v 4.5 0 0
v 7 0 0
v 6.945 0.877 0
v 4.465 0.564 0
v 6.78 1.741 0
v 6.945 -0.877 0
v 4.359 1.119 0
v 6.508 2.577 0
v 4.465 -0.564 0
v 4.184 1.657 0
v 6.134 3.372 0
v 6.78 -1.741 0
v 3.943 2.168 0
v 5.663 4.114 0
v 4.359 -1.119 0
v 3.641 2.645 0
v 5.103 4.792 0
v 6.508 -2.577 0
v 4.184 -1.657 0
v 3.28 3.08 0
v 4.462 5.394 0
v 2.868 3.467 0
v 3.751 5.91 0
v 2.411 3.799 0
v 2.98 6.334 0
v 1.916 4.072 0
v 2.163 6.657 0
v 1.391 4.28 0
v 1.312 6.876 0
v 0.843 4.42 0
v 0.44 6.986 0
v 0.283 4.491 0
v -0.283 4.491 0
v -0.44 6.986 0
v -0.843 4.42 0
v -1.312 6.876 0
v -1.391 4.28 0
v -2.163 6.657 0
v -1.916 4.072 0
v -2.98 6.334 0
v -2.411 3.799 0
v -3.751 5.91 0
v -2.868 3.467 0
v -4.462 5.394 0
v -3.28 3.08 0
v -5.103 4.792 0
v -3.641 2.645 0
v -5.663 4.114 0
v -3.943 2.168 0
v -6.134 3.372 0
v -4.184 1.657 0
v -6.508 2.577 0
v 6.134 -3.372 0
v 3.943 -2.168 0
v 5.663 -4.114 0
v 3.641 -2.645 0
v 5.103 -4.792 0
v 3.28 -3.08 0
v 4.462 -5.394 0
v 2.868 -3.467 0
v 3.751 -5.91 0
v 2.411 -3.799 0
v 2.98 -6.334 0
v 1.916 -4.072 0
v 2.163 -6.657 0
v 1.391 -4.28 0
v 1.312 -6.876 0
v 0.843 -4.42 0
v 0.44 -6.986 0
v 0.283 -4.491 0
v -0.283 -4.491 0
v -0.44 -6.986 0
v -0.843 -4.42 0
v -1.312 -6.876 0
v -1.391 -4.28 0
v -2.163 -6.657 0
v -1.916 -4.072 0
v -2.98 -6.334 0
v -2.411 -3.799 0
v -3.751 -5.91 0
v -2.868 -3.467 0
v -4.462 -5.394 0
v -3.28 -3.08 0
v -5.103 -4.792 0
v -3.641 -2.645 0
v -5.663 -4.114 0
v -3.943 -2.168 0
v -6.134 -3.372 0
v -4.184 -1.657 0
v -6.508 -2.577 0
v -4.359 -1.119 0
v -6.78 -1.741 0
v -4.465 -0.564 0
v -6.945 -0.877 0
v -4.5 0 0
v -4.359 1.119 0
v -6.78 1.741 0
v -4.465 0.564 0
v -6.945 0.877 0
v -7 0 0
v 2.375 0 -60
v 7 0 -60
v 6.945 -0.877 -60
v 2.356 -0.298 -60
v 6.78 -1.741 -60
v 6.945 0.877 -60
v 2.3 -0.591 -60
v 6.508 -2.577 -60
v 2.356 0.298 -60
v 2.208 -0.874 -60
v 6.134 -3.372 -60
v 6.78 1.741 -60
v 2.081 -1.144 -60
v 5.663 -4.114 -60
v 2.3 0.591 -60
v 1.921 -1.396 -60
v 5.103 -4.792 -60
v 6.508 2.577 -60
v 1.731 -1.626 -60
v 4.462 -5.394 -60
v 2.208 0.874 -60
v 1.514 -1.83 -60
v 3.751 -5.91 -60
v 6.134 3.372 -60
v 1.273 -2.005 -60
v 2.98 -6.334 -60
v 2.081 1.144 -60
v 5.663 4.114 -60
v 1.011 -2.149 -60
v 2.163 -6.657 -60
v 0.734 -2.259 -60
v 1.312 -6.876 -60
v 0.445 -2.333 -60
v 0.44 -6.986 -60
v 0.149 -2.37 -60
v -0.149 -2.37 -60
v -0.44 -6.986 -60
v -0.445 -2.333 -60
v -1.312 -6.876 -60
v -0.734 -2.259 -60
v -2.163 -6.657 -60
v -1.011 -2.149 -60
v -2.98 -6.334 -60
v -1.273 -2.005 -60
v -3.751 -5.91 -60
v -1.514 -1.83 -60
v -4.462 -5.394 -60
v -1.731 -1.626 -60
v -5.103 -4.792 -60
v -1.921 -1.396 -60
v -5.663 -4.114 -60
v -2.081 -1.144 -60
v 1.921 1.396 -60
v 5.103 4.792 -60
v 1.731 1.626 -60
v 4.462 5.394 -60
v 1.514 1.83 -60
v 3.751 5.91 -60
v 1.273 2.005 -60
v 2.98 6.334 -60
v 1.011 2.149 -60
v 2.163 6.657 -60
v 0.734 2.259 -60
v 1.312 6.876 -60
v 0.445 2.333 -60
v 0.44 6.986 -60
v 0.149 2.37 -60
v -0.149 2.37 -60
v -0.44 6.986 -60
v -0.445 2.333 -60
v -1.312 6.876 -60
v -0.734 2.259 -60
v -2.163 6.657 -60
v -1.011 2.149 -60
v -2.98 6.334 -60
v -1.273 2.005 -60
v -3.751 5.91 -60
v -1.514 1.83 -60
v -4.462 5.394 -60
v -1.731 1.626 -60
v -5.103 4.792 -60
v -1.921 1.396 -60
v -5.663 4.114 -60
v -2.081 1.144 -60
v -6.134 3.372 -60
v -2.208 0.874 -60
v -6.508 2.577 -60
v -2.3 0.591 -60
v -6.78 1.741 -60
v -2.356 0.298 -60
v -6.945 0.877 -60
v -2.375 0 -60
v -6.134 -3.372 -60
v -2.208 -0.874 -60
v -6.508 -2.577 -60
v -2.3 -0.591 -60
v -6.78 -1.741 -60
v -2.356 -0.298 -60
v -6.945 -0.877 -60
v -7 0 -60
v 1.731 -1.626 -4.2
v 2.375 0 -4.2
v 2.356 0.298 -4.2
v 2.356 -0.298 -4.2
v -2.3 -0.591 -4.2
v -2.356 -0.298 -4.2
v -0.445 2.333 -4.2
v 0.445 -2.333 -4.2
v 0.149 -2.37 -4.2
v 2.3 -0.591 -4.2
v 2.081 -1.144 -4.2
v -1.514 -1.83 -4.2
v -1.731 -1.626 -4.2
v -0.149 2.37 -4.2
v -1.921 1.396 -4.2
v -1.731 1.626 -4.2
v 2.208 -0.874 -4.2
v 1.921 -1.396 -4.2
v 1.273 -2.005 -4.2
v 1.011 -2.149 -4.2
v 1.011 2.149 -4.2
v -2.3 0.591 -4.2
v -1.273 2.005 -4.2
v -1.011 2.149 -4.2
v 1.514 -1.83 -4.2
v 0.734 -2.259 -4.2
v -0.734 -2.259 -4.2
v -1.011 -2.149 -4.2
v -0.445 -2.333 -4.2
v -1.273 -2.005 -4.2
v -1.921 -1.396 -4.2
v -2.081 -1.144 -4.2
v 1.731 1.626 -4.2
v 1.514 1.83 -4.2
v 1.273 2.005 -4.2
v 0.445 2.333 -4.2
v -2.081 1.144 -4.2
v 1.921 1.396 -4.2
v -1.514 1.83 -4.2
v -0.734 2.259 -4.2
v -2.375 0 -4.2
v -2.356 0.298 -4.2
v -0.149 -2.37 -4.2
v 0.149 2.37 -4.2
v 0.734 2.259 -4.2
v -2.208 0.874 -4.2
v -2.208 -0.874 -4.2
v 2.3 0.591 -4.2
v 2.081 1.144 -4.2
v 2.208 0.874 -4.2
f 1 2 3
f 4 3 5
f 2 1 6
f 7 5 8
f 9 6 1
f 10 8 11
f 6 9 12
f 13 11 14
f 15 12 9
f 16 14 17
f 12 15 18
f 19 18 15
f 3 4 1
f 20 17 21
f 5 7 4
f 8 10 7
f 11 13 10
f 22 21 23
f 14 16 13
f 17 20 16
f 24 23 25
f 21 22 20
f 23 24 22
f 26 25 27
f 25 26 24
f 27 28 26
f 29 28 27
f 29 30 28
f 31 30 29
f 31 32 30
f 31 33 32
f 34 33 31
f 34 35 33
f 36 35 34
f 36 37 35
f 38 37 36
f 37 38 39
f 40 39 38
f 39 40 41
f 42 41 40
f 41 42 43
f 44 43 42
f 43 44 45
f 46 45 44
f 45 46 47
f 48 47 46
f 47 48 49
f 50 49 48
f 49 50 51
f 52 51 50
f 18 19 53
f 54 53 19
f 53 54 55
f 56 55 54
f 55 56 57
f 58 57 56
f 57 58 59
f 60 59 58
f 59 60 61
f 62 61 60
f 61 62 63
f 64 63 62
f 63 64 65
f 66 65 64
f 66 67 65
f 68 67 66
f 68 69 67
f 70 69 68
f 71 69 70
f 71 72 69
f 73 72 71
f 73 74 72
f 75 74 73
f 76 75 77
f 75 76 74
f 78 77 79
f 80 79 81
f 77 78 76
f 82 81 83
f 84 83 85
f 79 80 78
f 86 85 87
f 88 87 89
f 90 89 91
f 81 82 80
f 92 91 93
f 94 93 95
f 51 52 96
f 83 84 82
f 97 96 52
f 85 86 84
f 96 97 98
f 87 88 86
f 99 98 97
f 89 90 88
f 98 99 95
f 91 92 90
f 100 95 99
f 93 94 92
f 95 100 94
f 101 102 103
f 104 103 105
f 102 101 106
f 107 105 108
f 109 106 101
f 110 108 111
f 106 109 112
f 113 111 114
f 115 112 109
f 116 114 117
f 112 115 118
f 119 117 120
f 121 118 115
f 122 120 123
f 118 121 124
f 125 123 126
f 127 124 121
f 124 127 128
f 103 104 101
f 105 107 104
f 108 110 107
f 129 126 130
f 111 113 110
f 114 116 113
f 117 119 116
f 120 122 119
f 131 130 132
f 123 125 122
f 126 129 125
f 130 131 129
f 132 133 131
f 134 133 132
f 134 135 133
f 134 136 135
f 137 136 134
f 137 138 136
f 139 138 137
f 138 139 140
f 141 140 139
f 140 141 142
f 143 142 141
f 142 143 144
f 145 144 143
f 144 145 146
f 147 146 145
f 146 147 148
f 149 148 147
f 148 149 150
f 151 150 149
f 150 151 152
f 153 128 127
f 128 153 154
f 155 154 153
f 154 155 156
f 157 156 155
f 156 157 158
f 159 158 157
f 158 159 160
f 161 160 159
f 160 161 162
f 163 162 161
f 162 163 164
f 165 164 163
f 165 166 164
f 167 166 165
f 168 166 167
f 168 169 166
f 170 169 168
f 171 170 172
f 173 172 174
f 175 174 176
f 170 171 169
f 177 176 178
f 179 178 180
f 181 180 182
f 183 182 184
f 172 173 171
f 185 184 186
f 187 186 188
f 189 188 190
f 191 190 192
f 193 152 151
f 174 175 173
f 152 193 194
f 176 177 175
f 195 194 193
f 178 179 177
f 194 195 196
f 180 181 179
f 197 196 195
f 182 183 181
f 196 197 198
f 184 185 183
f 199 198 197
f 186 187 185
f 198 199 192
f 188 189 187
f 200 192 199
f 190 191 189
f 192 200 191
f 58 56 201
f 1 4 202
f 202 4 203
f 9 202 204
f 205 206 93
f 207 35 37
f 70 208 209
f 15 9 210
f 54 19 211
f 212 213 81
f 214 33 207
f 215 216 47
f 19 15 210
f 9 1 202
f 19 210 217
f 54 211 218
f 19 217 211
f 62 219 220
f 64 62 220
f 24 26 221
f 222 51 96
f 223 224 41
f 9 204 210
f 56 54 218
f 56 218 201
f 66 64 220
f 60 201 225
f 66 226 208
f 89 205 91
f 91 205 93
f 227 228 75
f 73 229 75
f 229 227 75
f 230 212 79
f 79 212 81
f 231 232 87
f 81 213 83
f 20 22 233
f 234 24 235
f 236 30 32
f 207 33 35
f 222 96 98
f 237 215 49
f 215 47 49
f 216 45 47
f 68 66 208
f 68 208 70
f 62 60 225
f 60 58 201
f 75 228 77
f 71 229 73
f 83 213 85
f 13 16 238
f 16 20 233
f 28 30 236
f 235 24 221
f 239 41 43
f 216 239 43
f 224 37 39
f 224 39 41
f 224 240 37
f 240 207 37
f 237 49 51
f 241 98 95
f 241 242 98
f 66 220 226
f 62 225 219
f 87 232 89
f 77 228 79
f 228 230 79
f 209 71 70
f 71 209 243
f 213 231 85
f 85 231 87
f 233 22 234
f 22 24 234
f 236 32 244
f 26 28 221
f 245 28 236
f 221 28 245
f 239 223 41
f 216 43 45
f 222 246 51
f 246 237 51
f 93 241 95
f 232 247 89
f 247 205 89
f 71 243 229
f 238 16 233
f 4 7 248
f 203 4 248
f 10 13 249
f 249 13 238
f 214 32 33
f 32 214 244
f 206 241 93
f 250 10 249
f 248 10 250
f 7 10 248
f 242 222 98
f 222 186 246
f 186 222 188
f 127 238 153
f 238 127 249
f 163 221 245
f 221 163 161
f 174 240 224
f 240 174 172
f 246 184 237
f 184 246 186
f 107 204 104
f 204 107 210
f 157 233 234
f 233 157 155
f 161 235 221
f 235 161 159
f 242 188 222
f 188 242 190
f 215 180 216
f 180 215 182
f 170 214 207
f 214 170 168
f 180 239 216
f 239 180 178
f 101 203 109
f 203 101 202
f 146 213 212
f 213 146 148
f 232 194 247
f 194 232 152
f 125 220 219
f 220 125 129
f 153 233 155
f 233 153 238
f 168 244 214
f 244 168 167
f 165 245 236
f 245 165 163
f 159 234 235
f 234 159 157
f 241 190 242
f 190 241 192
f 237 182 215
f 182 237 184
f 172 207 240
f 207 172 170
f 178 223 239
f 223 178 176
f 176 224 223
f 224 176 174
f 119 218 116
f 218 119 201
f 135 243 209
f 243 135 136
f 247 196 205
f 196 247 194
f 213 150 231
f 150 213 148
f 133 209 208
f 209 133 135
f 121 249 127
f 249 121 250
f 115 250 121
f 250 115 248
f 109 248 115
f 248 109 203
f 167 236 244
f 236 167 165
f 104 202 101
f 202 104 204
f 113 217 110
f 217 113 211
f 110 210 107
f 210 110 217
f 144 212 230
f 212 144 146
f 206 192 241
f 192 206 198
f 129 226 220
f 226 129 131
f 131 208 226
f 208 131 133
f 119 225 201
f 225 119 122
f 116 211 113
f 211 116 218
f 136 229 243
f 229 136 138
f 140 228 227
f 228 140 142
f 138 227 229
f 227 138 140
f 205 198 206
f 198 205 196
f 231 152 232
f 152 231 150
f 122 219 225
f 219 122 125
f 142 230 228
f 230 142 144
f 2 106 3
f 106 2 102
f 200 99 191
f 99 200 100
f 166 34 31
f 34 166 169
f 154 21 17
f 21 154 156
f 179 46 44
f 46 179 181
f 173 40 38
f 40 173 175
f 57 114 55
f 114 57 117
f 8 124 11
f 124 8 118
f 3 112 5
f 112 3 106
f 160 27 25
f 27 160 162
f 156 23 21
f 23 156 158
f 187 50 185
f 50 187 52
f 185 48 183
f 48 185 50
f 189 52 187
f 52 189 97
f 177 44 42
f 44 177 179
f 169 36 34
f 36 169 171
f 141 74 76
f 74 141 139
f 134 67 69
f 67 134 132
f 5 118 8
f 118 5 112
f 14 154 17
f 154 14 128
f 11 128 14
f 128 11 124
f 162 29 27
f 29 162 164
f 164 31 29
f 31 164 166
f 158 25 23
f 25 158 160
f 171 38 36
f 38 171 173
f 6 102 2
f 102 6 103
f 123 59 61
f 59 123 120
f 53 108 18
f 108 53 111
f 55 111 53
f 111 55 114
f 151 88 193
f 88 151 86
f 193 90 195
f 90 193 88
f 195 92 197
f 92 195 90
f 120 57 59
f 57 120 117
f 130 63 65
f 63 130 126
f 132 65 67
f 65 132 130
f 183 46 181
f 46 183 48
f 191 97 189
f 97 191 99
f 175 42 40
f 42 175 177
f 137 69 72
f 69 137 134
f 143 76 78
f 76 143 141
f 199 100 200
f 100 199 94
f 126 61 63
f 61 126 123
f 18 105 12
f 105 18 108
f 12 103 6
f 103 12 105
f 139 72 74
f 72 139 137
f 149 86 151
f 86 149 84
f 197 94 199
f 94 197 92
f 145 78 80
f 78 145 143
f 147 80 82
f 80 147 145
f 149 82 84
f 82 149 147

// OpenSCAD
$fn = 50;


difference() {
	union() {
		translate(v = [0, 0, -60.0000000000]) {
			cylinder(h = 60, r = 7.0000000000);
		}
		cylinder(h = 0, r = 13.0000000000);
	}
	union() {
		translate(v = [0, 0, 0]) {
			rotate(a = [0, 0, 0]) {
				difference() {
					union() {
						#translate(v = [0, 0, -60.0000000000]) {
							cylinder(h = 60, r = 2.2500000000);
						}
						#translate(v = [0, 0, -4.2000000000]) {
							cylinder(h = 4.2000000000, r1 = 2.3750000000, r2 = 4.5000000000);
						}
						#translate(v = [0, 0, -60.0000000000]) {
							cylinder(h = 60, r = 2.3750000000);
						}
						#translate(v = [0, 0, -60.0000000000]) {
							cylinder(h = 60, r = 2.2500000000);
						}
					}
					union();
				}
			}
		}
	}
}
